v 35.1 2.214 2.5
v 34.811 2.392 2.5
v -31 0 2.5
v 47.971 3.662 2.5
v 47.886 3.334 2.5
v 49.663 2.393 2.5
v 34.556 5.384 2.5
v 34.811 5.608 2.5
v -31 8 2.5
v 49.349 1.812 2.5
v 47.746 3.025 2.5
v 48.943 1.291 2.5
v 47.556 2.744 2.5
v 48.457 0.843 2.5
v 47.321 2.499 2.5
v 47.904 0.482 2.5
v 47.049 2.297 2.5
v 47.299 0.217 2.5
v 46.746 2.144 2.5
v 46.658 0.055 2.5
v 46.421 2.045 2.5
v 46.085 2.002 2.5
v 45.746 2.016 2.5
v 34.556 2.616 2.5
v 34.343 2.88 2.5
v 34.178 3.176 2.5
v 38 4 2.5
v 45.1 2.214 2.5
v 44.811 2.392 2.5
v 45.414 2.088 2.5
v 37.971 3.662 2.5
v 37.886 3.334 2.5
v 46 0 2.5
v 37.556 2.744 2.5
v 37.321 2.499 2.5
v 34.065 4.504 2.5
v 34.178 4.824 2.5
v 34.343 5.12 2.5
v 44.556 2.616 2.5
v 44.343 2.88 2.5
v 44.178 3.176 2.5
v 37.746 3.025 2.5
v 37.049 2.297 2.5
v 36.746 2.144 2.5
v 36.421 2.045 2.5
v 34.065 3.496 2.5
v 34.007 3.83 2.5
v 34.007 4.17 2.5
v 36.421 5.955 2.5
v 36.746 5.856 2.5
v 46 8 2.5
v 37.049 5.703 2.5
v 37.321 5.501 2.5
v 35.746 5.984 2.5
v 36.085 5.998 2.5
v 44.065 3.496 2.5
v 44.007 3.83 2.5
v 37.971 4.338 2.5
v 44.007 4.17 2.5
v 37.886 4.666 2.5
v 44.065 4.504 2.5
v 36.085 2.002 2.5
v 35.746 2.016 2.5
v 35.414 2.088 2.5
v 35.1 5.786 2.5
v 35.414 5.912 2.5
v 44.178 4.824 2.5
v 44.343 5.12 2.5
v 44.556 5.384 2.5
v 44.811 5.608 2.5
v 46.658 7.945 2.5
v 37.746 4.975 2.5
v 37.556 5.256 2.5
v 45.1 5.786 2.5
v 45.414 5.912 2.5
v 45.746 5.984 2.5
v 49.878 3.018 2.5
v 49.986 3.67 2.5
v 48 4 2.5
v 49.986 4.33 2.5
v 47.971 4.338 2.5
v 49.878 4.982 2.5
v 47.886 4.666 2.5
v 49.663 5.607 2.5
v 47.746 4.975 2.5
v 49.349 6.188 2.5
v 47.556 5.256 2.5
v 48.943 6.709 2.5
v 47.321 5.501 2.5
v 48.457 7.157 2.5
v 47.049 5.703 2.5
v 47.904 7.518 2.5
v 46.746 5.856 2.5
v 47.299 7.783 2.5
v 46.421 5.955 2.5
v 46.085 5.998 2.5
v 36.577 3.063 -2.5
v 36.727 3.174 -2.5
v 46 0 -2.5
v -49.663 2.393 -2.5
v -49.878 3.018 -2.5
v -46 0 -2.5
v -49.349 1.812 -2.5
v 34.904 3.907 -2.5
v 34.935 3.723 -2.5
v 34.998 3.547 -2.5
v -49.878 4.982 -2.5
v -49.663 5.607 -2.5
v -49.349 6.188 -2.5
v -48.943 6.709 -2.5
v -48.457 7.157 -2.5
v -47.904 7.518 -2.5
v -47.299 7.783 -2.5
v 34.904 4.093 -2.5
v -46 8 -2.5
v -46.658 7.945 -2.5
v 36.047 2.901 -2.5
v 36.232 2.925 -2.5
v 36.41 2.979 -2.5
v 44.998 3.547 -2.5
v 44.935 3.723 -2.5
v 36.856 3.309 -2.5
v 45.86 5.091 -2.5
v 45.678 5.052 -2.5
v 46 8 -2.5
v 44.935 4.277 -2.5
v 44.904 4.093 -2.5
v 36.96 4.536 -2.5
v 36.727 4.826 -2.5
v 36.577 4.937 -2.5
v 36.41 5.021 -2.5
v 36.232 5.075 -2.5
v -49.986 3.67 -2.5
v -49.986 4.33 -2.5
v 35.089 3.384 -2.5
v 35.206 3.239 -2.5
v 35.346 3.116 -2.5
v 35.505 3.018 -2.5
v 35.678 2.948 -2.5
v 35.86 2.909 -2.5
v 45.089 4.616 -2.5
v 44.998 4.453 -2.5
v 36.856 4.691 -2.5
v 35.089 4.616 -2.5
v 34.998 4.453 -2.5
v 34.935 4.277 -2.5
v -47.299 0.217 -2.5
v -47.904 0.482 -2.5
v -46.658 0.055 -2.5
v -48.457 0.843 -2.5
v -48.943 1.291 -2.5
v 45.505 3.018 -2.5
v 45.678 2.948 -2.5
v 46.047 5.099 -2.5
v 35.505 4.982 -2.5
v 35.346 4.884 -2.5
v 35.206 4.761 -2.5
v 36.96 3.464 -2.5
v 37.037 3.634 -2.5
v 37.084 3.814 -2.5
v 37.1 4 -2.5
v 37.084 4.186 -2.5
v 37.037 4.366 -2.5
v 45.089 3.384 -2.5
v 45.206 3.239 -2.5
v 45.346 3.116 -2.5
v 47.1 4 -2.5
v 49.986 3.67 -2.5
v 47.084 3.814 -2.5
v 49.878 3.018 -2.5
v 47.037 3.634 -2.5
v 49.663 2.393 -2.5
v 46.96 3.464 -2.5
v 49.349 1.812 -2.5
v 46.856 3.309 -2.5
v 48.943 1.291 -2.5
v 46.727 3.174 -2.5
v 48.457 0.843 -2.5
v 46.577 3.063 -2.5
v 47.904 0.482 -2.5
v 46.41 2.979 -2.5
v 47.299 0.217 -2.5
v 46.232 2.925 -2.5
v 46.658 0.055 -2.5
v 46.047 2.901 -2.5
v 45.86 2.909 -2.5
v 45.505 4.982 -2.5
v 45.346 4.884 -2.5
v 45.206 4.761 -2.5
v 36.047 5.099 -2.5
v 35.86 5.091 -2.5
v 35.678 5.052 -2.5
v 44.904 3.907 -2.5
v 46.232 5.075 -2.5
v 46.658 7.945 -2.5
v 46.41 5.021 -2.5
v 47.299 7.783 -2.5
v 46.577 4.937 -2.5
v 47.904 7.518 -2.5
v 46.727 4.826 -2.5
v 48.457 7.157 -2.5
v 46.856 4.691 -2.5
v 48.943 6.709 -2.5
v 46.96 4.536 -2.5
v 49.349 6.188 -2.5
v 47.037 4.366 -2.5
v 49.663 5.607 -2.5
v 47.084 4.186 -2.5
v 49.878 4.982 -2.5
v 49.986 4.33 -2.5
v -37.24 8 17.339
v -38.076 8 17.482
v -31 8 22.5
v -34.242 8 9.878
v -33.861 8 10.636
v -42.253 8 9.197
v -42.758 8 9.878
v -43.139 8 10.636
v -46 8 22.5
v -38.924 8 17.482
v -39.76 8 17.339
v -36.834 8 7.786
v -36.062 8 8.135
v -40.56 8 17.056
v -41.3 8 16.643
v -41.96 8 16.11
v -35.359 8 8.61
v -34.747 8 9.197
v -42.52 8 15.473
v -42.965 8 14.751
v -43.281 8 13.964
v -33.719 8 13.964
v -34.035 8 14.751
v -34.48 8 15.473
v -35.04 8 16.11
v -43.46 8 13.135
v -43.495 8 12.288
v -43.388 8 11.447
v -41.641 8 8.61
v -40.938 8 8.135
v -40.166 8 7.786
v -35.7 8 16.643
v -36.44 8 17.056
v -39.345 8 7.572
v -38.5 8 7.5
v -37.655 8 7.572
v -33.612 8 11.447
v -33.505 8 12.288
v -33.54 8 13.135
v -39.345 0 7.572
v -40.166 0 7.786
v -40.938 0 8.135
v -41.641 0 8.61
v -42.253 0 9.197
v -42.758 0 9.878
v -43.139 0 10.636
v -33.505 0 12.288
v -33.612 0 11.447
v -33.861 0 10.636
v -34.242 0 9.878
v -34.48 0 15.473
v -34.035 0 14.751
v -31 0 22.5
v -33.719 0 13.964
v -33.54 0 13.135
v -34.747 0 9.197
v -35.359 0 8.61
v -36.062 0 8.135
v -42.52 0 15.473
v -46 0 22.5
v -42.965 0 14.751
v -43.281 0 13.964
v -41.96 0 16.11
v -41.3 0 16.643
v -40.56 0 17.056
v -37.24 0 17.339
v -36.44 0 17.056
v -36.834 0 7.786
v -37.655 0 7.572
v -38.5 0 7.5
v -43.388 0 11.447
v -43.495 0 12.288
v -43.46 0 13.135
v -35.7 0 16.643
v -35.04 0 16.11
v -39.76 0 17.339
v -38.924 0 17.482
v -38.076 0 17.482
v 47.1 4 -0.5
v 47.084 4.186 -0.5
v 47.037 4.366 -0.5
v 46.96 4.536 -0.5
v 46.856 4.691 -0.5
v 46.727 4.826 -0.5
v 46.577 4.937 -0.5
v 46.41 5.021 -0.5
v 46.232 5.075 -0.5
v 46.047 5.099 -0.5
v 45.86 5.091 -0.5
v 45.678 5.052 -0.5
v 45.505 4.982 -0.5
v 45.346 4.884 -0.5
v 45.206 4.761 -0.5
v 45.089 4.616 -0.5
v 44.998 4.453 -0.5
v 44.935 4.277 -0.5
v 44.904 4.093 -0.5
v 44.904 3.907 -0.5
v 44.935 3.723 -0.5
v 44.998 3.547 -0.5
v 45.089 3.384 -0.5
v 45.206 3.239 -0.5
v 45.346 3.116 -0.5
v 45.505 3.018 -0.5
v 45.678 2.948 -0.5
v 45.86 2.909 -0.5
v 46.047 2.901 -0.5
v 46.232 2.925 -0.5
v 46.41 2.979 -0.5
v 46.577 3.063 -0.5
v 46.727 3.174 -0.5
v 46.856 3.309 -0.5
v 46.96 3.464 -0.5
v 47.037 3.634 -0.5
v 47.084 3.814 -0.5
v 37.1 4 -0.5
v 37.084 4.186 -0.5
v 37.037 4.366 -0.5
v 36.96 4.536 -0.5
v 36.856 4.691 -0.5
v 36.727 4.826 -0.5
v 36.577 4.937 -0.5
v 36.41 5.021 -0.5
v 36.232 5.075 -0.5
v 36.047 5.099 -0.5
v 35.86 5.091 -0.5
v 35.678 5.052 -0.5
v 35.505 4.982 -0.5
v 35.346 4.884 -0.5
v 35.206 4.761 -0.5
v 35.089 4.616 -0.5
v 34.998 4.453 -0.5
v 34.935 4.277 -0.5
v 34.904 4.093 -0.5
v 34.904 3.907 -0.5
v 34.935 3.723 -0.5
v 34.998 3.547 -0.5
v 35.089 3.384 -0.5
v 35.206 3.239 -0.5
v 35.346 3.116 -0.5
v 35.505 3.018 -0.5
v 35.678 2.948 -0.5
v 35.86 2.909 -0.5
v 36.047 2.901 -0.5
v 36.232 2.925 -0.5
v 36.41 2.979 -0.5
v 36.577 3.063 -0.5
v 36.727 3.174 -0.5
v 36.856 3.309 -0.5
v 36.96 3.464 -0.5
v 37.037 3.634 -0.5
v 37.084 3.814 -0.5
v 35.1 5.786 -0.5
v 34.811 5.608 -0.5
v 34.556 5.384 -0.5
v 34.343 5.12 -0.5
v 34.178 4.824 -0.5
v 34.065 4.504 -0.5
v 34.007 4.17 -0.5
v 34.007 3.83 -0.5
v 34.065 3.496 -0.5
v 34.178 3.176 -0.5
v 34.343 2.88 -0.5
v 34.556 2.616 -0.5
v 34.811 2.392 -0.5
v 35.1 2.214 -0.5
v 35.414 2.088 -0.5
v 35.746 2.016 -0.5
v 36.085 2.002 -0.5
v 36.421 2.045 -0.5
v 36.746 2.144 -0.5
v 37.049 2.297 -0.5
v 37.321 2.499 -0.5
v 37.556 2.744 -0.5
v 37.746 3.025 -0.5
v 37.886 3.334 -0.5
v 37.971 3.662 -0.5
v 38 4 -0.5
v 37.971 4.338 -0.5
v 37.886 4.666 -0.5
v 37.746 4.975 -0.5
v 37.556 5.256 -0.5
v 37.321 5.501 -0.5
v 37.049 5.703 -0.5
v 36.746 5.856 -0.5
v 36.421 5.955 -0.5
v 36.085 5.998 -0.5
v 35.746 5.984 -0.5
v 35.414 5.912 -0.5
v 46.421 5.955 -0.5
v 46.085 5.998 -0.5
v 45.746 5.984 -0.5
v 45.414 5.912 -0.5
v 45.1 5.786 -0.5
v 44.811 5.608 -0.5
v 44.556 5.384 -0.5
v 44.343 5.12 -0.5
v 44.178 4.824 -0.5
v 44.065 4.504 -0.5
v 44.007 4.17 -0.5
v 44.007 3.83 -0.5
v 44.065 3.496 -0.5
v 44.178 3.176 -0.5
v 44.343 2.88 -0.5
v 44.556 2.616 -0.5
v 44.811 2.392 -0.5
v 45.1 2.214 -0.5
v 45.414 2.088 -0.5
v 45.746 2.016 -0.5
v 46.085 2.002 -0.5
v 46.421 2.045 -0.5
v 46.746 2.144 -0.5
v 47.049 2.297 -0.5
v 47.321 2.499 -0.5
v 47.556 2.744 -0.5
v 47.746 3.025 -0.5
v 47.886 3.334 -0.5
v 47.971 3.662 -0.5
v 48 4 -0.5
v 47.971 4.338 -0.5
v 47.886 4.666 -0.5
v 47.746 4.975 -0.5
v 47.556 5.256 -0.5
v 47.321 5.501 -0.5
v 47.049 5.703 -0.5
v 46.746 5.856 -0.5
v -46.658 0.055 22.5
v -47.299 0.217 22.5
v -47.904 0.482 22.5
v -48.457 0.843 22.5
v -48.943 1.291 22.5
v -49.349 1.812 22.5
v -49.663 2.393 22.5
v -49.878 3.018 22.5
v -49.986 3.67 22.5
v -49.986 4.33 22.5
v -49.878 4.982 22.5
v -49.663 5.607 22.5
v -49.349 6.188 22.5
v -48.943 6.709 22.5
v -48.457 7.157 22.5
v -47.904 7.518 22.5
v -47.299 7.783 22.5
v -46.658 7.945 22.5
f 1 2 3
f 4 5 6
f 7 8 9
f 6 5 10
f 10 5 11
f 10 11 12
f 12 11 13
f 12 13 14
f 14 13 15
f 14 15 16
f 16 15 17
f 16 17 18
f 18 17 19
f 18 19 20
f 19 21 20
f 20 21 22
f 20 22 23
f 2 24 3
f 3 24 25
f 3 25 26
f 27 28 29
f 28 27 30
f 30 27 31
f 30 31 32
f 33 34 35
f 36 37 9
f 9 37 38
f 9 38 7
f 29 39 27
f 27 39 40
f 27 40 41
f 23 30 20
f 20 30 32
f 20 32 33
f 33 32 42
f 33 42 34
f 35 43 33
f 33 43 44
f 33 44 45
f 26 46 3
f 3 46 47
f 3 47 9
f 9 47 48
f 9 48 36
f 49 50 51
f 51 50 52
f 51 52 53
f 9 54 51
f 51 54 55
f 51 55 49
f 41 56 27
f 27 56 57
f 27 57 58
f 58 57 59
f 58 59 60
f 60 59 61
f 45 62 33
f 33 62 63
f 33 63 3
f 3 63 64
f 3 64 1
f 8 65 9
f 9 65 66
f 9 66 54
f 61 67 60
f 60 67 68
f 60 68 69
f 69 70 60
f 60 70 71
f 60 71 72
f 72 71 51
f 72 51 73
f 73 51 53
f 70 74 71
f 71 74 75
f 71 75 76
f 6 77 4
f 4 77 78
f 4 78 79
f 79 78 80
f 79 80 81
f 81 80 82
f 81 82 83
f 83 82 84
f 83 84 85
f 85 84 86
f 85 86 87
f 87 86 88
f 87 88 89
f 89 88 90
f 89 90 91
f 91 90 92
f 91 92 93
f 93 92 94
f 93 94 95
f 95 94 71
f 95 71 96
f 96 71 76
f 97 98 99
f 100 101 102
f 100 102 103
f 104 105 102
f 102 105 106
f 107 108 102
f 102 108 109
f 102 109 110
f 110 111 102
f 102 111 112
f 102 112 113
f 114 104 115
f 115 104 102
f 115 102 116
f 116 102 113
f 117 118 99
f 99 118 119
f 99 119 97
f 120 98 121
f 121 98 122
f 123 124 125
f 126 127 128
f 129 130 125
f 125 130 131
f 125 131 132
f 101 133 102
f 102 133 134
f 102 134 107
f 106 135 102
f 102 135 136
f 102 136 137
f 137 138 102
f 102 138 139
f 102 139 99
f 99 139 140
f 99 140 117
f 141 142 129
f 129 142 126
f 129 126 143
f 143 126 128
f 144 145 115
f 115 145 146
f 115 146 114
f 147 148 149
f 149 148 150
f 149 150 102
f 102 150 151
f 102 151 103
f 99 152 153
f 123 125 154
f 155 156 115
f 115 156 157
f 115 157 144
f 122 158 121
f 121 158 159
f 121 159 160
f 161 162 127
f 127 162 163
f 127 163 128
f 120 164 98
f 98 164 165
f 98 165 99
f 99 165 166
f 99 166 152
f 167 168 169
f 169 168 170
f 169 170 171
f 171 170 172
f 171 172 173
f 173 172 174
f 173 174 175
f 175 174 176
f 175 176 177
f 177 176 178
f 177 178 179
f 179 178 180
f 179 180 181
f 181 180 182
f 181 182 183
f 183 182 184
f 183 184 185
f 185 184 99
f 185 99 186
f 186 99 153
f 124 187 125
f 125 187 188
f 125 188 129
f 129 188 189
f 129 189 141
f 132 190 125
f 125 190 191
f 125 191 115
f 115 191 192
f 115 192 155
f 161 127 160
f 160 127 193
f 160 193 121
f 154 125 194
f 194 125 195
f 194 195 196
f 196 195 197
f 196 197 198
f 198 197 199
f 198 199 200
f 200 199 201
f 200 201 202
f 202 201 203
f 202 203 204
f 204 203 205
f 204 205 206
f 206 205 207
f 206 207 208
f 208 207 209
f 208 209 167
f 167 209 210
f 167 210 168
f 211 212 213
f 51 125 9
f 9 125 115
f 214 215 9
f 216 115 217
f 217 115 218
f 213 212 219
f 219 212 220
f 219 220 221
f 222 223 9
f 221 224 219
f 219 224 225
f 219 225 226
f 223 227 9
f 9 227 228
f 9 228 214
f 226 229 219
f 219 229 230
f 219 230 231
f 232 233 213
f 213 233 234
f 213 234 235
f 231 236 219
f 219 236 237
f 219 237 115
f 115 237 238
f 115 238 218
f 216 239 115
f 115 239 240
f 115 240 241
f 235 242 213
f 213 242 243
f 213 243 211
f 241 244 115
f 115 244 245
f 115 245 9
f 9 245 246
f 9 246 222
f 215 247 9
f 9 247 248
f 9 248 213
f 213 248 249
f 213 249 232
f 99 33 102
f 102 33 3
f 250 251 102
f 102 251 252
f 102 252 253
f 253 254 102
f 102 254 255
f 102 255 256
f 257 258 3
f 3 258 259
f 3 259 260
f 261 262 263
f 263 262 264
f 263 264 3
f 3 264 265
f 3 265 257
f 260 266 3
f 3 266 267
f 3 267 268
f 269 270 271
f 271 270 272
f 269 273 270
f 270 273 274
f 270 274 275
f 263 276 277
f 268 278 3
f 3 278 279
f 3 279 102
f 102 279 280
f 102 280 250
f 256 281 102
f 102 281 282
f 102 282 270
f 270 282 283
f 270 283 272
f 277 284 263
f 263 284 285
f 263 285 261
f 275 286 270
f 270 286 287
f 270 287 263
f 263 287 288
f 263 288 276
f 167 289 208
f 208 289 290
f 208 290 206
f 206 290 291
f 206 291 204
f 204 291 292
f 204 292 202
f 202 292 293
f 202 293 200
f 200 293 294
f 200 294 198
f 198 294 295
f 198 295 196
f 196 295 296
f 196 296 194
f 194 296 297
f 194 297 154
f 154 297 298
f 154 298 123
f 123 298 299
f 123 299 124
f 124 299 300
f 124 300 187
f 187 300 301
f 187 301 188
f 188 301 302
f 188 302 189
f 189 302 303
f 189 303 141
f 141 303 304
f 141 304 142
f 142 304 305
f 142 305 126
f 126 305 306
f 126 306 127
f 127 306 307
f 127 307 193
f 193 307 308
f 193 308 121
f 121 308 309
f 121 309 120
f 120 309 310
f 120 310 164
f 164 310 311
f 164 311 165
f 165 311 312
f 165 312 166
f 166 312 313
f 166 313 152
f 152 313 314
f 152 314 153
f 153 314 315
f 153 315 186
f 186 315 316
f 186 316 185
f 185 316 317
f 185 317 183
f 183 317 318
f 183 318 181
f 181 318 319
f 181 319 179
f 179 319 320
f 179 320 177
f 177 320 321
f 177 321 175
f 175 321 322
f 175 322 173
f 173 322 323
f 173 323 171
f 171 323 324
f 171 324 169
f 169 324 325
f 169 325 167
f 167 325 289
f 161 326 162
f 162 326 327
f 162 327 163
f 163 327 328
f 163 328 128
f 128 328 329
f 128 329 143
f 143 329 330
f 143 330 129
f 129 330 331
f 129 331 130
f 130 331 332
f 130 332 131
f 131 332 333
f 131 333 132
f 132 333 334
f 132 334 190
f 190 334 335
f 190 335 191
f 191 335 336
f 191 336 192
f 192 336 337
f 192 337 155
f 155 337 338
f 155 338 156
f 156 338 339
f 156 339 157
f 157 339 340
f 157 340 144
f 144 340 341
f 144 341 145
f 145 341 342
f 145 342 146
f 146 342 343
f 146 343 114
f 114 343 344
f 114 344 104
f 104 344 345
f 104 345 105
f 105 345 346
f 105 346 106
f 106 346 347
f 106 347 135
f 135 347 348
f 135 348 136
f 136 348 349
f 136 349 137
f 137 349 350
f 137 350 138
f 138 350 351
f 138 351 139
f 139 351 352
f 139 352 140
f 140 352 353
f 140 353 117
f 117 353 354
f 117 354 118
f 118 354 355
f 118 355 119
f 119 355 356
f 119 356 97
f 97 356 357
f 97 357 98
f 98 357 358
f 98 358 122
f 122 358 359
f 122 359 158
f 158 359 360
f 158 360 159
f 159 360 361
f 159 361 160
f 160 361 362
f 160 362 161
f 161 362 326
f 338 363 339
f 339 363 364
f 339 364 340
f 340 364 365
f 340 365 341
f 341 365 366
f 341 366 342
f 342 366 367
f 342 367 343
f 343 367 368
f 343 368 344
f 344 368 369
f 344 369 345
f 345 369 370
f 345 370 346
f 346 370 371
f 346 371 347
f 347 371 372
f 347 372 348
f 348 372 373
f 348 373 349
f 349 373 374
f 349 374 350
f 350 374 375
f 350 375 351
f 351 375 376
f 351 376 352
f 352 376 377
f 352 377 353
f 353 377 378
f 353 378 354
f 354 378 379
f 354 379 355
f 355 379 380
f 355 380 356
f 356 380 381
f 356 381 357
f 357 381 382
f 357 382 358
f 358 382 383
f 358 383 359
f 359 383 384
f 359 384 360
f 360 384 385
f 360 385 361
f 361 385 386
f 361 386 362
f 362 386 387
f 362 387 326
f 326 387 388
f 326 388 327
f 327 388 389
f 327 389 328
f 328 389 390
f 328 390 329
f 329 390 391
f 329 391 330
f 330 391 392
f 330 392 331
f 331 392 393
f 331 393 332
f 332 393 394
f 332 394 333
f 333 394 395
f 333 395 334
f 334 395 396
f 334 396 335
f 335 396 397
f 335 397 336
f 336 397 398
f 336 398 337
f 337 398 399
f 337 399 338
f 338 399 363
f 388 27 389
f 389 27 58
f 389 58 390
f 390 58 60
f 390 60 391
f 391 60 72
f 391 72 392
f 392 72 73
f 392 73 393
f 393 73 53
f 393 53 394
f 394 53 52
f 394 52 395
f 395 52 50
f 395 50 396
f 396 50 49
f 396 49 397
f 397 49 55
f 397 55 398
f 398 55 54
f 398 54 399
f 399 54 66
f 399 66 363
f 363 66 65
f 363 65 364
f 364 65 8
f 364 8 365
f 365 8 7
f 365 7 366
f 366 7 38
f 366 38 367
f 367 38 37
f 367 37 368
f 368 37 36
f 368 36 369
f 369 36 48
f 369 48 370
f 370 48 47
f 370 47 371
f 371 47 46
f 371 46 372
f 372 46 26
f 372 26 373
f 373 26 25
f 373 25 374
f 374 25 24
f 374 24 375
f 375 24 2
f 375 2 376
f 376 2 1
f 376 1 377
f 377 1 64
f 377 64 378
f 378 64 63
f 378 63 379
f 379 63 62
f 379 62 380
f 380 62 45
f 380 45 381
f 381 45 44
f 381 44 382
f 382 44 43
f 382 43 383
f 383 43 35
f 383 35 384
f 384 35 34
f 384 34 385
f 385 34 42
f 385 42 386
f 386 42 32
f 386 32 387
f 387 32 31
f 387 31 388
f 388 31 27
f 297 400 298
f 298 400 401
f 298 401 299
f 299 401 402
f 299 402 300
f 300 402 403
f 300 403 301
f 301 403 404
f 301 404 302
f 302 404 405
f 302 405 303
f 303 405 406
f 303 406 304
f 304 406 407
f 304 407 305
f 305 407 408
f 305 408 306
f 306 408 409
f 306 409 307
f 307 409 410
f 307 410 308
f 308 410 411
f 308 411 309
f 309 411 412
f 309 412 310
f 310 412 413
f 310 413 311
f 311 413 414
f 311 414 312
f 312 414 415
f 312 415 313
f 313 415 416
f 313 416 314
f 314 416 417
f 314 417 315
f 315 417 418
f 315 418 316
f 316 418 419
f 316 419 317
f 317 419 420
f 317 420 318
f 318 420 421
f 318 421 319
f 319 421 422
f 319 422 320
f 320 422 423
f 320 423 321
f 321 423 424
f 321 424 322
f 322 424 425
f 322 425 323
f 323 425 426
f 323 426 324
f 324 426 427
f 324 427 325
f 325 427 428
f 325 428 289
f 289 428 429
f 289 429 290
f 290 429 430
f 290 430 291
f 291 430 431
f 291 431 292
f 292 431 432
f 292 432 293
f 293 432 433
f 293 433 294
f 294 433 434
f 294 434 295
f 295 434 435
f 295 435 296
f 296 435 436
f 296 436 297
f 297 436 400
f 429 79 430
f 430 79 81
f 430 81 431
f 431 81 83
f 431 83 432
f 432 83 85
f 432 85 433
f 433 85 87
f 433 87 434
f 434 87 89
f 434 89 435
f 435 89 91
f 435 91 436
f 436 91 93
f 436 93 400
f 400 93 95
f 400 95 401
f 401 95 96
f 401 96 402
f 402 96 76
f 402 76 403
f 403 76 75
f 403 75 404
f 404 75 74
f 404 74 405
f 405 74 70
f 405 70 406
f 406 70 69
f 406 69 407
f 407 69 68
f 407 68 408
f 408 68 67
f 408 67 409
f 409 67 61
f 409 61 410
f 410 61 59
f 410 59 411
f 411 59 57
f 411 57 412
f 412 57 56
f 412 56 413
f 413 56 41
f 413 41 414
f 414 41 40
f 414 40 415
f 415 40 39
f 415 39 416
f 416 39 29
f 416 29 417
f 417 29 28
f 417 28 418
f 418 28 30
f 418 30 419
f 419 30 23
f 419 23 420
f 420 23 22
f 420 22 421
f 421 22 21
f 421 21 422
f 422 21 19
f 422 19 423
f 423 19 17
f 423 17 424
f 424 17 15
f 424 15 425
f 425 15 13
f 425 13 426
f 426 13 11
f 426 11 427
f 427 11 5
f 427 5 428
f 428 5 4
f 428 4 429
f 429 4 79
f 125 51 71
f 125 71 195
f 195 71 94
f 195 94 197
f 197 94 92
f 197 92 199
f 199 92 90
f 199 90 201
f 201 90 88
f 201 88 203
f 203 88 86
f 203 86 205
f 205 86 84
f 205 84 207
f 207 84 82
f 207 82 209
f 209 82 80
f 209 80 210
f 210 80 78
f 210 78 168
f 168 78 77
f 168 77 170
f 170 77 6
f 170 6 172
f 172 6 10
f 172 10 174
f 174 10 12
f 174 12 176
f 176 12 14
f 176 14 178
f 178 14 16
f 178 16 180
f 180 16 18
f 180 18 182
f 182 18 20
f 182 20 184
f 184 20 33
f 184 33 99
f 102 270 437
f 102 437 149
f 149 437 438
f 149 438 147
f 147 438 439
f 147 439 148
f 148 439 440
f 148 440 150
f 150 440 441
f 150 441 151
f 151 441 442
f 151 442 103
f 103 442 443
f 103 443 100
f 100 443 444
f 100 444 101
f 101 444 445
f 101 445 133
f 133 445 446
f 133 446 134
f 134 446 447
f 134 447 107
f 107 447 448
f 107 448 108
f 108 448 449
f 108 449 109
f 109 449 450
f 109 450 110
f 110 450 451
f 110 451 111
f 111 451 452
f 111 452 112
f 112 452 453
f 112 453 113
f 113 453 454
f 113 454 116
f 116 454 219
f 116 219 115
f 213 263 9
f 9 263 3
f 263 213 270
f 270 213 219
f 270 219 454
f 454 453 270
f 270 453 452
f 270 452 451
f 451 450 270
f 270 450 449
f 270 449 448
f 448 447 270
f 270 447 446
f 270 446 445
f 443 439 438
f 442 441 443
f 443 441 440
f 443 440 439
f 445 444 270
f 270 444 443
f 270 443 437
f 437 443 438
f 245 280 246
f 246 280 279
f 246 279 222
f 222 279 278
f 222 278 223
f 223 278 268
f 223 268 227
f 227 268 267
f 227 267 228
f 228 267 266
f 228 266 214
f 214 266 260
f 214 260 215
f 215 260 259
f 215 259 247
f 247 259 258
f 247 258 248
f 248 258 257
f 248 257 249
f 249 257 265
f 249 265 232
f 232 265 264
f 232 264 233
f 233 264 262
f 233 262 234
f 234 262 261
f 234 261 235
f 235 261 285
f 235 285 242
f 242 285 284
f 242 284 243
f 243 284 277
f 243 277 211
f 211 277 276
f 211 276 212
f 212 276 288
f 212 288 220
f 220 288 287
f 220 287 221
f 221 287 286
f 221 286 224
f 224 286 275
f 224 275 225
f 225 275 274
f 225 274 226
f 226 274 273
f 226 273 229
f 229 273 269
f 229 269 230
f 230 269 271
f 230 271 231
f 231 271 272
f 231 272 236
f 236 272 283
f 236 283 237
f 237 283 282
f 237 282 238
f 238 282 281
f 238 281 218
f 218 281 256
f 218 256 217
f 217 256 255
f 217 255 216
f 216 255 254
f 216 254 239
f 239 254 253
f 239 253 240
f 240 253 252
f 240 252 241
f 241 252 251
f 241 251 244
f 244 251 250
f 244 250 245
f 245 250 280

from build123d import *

# Parameters (mm, degrees)
SKETCH_1_W          = 100
SKETCH_1_H          = 5
EXTRUDE_1_DEPTH     = 8
SKETCH_2_R          = 1.1
CUT_EXTRUDE_1_DEPTH = 51.882216933
SKETCH_2_3_R        = 2
CUT_EXTRUDE_2_DEPTH = 3
CUT_EXTRUDE_3_DEPTH = 51.882216933
CUT_EXTRUDE_4_DEPTH = 51.882216933
EXTRUDE_START       = 20
SKETCH_4_W          = 15
SKETCH_4_H          = 8
EXTRUDE_2_DEPTH     = 20
CUT_EXTRUDE_5_DEPTH = 56.409836672


with BuildPart() as part:
    # 草图1 → 凸台-拉伸1 (new body)
    with BuildSketch(Plane(origin=(0, 0, 0), x_dir=(1, 0, 0), z_dir=(0, 1, 0))):
        Rectangle(SKETCH_1_W, SKETCH_1_H)
    extrude(amount=EXTRUDE_1_DEPTH)

    # 草图2 → 切除-拉伸1 (cut, through all)
    with BuildSketch(Plane.XY.offset(2.5)):
        with Locations((46, 4)):
            Circle(SKETCH_2_R)
        with Locations((36, 4)):
            Circle(SKETCH_2_R)
    extrude(amount=-CUT_EXTRUDE_1_DEPTH, mode=Mode.SUBTRACT)

    # 草图2<3> → 切除-拉伸2 (cut)
    with BuildSketch(Plane.XY.offset(2.5)):
        with Locations((36, 4)):
            Circle(SKETCH_2_3_R)
        with Locations((46, 4)):
            Circle(SKETCH_2_3_R)
    extrude(amount=-CUT_EXTRUDE_2_DEPTH, mode=Mode.SUBTRACT)

    # 草图3 → 切除-拉伸3 (cut, through all)
    with BuildSketch(Plane.XY.offset(2.5)):
        with BuildLine():
            ThreePointArc((50, 4), (48.828427125, 1.171572875), (46, 0))
            Line((46, 0), (50, 0))
            Line((50, 0), (50, 4))
        make_face()
        with BuildLine():
            Line((50, 8), (46, 8))
            ThreePointArc((46, 8), (48.828427125, 6.828427125), (50, 4))
            Line((50, 4), (50, 8))
        make_face()
    extrude(amount=-CUT_EXTRUDE_3_DEPTH, mode=Mode.SUBTRACT)

    # 草图3<3> → 切除-拉伸4 (cut, through all)
    with BuildSketch(Plane.XY.offset(2.5)):
        with BuildLine():
            ThreePointArc((-50, 4), (-48.828427125, 6.828427125), (-46, 8))
            Line((-46, 8), (-50, 8))
            Line((-50, 8), (-50, 4))
        make_face()
        with BuildLine():
            Line((-50, 0), (-46, 0))
            ThreePointArc((-46, 0), (-48.828427125, 1.171572875), (-50, 4))
            Line((-50, 4), (-50, 0))
        make_face()
    extrude(amount=-CUT_EXTRUDE_4_DEPTH, mode=Mode.SUBTRACT)

    # 草图4 → 凸台-拉伸2 (add)
    with BuildSketch(Plane.XY.offset(2.5).offset(EXTRUDE_START)):
        with BuildLine():
            Line((-46, 0), (-46, 8))
            ThreePointArc((-46, 8), (-50, 4), (-46, 0))
        make_face()
        with Locations((-38.5, 4)):
            Rectangle(SKETCH_4_W, SKETCH_4_H)
    extrude(amount=-EXTRUDE_2_DEPTH)

    # 草图5 → 切除-拉伸5 (cut, through all)
    with BuildSketch(Plane.XZ):
        with BuildLine():
            ThreePointArc((-33.5, 12.5), (-38.5, 17.5), (-43.5, 12.5))
            Line((-43.5, 12.5), (-33.5, 12.5))
        make_face()
        with BuildLine():
            Line((-33.5, 12.5), (-43.5, 12.5))
            ThreePointArc((-43.5, 12.5), (-38.5, 7.5), (-33.5, 12.5))
        make_face()
    extrude(amount=-CUT_EXTRUDE_5_DEPTH, mode=Mode.SUBTRACT)


solid = part.part
